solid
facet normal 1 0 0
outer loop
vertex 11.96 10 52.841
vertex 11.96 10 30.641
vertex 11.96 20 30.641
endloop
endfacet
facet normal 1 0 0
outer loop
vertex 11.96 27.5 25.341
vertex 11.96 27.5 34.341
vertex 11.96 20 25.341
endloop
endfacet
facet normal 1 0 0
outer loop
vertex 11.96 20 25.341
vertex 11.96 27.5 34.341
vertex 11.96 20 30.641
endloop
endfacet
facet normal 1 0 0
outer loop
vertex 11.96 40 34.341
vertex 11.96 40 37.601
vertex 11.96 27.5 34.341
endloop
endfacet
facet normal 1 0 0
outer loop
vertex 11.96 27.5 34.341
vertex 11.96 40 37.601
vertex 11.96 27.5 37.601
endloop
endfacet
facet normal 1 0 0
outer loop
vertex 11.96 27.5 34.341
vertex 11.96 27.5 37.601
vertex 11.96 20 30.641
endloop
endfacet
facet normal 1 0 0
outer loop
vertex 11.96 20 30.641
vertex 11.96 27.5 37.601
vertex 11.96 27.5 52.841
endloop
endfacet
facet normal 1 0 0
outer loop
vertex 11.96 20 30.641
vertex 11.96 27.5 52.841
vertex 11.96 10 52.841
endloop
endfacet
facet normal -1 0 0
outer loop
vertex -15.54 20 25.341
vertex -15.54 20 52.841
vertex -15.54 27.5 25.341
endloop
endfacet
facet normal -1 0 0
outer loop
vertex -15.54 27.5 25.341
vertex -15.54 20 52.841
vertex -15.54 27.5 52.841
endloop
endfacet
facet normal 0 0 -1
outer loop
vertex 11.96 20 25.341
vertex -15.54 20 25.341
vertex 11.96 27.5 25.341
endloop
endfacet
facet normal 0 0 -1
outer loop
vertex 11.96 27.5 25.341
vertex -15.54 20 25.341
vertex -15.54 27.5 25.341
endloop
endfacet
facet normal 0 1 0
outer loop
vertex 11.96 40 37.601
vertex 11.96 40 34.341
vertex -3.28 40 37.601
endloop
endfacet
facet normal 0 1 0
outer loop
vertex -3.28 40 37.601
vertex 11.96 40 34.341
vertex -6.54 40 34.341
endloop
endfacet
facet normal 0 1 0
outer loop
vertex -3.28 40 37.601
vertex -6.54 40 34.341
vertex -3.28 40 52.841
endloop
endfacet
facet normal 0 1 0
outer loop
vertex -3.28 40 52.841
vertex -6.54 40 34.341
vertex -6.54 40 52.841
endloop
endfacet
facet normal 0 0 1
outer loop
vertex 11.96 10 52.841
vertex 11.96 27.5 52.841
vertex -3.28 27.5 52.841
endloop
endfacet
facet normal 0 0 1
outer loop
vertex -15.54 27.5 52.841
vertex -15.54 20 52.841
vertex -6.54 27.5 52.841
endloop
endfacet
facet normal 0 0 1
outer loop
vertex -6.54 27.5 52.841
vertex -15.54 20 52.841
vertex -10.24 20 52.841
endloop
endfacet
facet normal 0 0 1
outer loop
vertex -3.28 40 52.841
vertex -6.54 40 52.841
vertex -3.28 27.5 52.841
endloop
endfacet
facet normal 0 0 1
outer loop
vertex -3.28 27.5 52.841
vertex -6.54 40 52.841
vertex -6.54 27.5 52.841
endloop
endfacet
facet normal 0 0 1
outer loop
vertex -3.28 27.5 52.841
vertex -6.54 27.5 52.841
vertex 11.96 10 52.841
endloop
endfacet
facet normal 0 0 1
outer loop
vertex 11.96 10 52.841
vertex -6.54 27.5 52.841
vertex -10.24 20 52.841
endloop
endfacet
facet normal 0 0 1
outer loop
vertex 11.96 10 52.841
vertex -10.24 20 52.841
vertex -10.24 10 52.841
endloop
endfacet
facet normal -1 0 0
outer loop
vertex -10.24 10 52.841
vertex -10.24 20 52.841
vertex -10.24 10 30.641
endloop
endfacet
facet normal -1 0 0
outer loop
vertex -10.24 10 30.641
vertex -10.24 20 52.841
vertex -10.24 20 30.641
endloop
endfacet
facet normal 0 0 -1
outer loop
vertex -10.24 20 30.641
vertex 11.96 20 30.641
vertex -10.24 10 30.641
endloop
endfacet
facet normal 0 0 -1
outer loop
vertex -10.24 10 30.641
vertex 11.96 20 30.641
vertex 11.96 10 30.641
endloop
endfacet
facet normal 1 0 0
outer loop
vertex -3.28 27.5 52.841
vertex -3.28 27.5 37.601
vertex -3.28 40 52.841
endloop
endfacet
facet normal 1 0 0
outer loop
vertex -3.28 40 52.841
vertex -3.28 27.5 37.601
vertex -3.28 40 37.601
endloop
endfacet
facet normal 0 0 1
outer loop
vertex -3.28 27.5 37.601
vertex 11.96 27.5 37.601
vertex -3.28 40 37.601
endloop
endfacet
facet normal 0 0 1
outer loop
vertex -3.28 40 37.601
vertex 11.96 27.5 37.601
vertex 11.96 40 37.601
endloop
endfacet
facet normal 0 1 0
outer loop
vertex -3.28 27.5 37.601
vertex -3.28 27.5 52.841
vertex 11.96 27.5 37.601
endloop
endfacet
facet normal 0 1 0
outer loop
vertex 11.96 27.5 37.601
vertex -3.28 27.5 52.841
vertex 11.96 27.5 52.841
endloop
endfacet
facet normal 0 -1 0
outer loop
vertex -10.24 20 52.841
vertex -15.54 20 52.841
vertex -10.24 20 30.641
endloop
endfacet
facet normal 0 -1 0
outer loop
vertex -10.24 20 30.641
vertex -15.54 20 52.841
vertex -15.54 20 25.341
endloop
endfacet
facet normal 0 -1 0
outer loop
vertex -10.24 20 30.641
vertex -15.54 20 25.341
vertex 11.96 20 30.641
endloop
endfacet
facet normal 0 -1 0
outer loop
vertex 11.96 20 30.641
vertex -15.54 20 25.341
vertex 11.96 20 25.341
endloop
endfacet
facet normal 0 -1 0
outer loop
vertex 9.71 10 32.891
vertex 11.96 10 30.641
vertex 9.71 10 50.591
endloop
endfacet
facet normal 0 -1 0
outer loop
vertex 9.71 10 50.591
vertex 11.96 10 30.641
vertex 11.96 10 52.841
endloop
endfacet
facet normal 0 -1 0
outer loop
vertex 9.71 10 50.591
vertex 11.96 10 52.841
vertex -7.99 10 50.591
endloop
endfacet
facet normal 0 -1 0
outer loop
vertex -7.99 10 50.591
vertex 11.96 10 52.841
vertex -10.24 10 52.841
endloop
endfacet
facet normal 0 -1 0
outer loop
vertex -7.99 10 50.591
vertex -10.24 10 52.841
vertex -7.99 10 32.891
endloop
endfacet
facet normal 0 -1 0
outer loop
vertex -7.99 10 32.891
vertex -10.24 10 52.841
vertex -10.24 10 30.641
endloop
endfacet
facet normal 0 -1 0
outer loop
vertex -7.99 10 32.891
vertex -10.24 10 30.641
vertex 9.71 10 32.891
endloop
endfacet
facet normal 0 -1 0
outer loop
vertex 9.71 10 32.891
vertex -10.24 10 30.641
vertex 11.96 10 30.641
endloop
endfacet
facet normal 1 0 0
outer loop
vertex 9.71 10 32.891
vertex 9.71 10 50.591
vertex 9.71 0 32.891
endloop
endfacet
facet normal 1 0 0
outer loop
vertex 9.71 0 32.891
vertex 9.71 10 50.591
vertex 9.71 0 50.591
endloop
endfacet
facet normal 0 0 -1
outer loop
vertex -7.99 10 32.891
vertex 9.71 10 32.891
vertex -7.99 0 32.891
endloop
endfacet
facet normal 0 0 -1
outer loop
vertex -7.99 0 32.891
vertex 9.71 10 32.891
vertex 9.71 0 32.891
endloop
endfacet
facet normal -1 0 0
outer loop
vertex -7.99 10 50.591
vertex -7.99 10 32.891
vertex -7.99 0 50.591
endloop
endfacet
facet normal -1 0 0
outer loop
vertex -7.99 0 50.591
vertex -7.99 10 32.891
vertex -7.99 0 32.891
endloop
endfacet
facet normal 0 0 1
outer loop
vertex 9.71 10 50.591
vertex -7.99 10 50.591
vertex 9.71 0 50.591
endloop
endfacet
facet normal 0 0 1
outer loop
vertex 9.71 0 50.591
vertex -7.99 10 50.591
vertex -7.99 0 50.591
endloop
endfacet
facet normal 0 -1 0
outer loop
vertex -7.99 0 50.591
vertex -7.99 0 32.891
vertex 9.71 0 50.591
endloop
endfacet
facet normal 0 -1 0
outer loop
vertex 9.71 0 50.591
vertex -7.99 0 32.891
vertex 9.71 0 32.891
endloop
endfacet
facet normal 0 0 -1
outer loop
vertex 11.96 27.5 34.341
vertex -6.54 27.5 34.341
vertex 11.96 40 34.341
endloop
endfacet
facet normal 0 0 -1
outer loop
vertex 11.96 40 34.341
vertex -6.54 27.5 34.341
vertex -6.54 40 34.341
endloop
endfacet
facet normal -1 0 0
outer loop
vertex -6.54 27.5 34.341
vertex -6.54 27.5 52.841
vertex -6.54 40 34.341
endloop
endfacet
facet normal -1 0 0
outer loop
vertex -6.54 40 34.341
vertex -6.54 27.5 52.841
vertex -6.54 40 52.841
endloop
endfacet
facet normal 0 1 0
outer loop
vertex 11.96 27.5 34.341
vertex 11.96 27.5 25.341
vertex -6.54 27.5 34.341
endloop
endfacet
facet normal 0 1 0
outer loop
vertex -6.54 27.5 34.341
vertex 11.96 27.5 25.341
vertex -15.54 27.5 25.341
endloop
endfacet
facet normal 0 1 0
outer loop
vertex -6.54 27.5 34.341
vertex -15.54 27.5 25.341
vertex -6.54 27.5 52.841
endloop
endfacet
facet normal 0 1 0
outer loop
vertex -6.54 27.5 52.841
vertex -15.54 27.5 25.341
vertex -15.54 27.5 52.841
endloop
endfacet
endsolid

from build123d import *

# Parameters (mm, degrees)
SKETCH7_W           = 27.5
SKETCH7_H           = 27.5
BOSS_EXTRUDE6_DEPTH = 40
SKETCH8_W           = 15.24
SKETCH8_H           = 15.24
CUT_EXTRUDE2_DEPTH  = 12.5
CUT_EXTRUDE3_DEPTH  = 20
SKETCH10_W          = 22.2
SKETCH10_H          = 22.2
SKETCH10_W_2        = 17.7
SKETCH10_H_2        = 17.7
CUT_EXTRUDE4_DEPTH  = 10
CUT_EXTRUDE5_DEPTH  = 12.5


with BuildPart() as part:
    # Sketch7 → Boss-Extrude6 (new body)
    with BuildSketch(Plane(origin=(0, 0, 0), x_dir=(1, 0, 0), z_dir=(0, 1, 0))):
        with Locations((-1.790038454, -39.090727751)):
            Rectangle(SKETCH7_W, SKETCH7_H)
    extrude(amount=BOSS_EXTRUDE6_DEPTH)

    # Sketch8 → Cut-Extrude2 (cut)
    with BuildSketch(Plane(origin=(0, 40, 0), x_dir=(1, 0, 0), z_dir=(0, 1, 0))):
        with Locations((4.339961546, -45.220727751)):
            Rectangle(SKETCH8_W, SKETCH8_H)
    extrude(amount=-CUT_EXTRUDE2_DEPTH, mode=Mode.SUBTRACT)

    # Sketch9 → Cut-Extrude3 (cut)
    with BuildSketch(Plane.XZ):
        Polygon((-10.240038454, 30.640727751), (-10.240038454, 52.840727751), (-15.540038454, 52.840727751), (-15.540038454, 25.340727751), (11.959961546, 25.340727751), (11.959961546, 30.640727751), align=None)
    extrude(amount=-CUT_EXTRUDE3_DEPTH, mode=Mode.SUBTRACT)

    # Sketch10 → Cut-Extrude4 (cut)
    with BuildSketch(Plane.XZ):
        with Locations((0.859961546, 41.740727751)):
            Rectangle(SKETCH10_W, SKETCH10_H)
        with Locations((0.859961546, 41.740727751)):
            Rectangle(SKETCH10_W_2, SKETCH10_H_2, mode=Mode.SUBTRACT)
    extrude(amount=-CUT_EXTRUDE4_DEPTH, mode=Mode.SUBTRACT)

    # Sketch11 → Cut-Extrude5 (cut)
    with BuildSketch(Plane(origin=(0, 40, 0), x_dir=(1, 0, 0), z_dir=(0, 1, 0))):
        Polygon((11.959961546, -34.340727751), (11.959961546, -25.340727751), (-4.564600262, -25.340727751), (-10.557653768, -25.340727751), (-15.540038454, -25.340727751), (-15.540038454, -52.840727751), (-6.540038454, -52.840727751), (-6.540038454, -34.340727751), align=None)
    extrude(amount=-CUT_EXTRUDE5_DEPTH, mode=Mode.SUBTRACT)


solid = part.part
